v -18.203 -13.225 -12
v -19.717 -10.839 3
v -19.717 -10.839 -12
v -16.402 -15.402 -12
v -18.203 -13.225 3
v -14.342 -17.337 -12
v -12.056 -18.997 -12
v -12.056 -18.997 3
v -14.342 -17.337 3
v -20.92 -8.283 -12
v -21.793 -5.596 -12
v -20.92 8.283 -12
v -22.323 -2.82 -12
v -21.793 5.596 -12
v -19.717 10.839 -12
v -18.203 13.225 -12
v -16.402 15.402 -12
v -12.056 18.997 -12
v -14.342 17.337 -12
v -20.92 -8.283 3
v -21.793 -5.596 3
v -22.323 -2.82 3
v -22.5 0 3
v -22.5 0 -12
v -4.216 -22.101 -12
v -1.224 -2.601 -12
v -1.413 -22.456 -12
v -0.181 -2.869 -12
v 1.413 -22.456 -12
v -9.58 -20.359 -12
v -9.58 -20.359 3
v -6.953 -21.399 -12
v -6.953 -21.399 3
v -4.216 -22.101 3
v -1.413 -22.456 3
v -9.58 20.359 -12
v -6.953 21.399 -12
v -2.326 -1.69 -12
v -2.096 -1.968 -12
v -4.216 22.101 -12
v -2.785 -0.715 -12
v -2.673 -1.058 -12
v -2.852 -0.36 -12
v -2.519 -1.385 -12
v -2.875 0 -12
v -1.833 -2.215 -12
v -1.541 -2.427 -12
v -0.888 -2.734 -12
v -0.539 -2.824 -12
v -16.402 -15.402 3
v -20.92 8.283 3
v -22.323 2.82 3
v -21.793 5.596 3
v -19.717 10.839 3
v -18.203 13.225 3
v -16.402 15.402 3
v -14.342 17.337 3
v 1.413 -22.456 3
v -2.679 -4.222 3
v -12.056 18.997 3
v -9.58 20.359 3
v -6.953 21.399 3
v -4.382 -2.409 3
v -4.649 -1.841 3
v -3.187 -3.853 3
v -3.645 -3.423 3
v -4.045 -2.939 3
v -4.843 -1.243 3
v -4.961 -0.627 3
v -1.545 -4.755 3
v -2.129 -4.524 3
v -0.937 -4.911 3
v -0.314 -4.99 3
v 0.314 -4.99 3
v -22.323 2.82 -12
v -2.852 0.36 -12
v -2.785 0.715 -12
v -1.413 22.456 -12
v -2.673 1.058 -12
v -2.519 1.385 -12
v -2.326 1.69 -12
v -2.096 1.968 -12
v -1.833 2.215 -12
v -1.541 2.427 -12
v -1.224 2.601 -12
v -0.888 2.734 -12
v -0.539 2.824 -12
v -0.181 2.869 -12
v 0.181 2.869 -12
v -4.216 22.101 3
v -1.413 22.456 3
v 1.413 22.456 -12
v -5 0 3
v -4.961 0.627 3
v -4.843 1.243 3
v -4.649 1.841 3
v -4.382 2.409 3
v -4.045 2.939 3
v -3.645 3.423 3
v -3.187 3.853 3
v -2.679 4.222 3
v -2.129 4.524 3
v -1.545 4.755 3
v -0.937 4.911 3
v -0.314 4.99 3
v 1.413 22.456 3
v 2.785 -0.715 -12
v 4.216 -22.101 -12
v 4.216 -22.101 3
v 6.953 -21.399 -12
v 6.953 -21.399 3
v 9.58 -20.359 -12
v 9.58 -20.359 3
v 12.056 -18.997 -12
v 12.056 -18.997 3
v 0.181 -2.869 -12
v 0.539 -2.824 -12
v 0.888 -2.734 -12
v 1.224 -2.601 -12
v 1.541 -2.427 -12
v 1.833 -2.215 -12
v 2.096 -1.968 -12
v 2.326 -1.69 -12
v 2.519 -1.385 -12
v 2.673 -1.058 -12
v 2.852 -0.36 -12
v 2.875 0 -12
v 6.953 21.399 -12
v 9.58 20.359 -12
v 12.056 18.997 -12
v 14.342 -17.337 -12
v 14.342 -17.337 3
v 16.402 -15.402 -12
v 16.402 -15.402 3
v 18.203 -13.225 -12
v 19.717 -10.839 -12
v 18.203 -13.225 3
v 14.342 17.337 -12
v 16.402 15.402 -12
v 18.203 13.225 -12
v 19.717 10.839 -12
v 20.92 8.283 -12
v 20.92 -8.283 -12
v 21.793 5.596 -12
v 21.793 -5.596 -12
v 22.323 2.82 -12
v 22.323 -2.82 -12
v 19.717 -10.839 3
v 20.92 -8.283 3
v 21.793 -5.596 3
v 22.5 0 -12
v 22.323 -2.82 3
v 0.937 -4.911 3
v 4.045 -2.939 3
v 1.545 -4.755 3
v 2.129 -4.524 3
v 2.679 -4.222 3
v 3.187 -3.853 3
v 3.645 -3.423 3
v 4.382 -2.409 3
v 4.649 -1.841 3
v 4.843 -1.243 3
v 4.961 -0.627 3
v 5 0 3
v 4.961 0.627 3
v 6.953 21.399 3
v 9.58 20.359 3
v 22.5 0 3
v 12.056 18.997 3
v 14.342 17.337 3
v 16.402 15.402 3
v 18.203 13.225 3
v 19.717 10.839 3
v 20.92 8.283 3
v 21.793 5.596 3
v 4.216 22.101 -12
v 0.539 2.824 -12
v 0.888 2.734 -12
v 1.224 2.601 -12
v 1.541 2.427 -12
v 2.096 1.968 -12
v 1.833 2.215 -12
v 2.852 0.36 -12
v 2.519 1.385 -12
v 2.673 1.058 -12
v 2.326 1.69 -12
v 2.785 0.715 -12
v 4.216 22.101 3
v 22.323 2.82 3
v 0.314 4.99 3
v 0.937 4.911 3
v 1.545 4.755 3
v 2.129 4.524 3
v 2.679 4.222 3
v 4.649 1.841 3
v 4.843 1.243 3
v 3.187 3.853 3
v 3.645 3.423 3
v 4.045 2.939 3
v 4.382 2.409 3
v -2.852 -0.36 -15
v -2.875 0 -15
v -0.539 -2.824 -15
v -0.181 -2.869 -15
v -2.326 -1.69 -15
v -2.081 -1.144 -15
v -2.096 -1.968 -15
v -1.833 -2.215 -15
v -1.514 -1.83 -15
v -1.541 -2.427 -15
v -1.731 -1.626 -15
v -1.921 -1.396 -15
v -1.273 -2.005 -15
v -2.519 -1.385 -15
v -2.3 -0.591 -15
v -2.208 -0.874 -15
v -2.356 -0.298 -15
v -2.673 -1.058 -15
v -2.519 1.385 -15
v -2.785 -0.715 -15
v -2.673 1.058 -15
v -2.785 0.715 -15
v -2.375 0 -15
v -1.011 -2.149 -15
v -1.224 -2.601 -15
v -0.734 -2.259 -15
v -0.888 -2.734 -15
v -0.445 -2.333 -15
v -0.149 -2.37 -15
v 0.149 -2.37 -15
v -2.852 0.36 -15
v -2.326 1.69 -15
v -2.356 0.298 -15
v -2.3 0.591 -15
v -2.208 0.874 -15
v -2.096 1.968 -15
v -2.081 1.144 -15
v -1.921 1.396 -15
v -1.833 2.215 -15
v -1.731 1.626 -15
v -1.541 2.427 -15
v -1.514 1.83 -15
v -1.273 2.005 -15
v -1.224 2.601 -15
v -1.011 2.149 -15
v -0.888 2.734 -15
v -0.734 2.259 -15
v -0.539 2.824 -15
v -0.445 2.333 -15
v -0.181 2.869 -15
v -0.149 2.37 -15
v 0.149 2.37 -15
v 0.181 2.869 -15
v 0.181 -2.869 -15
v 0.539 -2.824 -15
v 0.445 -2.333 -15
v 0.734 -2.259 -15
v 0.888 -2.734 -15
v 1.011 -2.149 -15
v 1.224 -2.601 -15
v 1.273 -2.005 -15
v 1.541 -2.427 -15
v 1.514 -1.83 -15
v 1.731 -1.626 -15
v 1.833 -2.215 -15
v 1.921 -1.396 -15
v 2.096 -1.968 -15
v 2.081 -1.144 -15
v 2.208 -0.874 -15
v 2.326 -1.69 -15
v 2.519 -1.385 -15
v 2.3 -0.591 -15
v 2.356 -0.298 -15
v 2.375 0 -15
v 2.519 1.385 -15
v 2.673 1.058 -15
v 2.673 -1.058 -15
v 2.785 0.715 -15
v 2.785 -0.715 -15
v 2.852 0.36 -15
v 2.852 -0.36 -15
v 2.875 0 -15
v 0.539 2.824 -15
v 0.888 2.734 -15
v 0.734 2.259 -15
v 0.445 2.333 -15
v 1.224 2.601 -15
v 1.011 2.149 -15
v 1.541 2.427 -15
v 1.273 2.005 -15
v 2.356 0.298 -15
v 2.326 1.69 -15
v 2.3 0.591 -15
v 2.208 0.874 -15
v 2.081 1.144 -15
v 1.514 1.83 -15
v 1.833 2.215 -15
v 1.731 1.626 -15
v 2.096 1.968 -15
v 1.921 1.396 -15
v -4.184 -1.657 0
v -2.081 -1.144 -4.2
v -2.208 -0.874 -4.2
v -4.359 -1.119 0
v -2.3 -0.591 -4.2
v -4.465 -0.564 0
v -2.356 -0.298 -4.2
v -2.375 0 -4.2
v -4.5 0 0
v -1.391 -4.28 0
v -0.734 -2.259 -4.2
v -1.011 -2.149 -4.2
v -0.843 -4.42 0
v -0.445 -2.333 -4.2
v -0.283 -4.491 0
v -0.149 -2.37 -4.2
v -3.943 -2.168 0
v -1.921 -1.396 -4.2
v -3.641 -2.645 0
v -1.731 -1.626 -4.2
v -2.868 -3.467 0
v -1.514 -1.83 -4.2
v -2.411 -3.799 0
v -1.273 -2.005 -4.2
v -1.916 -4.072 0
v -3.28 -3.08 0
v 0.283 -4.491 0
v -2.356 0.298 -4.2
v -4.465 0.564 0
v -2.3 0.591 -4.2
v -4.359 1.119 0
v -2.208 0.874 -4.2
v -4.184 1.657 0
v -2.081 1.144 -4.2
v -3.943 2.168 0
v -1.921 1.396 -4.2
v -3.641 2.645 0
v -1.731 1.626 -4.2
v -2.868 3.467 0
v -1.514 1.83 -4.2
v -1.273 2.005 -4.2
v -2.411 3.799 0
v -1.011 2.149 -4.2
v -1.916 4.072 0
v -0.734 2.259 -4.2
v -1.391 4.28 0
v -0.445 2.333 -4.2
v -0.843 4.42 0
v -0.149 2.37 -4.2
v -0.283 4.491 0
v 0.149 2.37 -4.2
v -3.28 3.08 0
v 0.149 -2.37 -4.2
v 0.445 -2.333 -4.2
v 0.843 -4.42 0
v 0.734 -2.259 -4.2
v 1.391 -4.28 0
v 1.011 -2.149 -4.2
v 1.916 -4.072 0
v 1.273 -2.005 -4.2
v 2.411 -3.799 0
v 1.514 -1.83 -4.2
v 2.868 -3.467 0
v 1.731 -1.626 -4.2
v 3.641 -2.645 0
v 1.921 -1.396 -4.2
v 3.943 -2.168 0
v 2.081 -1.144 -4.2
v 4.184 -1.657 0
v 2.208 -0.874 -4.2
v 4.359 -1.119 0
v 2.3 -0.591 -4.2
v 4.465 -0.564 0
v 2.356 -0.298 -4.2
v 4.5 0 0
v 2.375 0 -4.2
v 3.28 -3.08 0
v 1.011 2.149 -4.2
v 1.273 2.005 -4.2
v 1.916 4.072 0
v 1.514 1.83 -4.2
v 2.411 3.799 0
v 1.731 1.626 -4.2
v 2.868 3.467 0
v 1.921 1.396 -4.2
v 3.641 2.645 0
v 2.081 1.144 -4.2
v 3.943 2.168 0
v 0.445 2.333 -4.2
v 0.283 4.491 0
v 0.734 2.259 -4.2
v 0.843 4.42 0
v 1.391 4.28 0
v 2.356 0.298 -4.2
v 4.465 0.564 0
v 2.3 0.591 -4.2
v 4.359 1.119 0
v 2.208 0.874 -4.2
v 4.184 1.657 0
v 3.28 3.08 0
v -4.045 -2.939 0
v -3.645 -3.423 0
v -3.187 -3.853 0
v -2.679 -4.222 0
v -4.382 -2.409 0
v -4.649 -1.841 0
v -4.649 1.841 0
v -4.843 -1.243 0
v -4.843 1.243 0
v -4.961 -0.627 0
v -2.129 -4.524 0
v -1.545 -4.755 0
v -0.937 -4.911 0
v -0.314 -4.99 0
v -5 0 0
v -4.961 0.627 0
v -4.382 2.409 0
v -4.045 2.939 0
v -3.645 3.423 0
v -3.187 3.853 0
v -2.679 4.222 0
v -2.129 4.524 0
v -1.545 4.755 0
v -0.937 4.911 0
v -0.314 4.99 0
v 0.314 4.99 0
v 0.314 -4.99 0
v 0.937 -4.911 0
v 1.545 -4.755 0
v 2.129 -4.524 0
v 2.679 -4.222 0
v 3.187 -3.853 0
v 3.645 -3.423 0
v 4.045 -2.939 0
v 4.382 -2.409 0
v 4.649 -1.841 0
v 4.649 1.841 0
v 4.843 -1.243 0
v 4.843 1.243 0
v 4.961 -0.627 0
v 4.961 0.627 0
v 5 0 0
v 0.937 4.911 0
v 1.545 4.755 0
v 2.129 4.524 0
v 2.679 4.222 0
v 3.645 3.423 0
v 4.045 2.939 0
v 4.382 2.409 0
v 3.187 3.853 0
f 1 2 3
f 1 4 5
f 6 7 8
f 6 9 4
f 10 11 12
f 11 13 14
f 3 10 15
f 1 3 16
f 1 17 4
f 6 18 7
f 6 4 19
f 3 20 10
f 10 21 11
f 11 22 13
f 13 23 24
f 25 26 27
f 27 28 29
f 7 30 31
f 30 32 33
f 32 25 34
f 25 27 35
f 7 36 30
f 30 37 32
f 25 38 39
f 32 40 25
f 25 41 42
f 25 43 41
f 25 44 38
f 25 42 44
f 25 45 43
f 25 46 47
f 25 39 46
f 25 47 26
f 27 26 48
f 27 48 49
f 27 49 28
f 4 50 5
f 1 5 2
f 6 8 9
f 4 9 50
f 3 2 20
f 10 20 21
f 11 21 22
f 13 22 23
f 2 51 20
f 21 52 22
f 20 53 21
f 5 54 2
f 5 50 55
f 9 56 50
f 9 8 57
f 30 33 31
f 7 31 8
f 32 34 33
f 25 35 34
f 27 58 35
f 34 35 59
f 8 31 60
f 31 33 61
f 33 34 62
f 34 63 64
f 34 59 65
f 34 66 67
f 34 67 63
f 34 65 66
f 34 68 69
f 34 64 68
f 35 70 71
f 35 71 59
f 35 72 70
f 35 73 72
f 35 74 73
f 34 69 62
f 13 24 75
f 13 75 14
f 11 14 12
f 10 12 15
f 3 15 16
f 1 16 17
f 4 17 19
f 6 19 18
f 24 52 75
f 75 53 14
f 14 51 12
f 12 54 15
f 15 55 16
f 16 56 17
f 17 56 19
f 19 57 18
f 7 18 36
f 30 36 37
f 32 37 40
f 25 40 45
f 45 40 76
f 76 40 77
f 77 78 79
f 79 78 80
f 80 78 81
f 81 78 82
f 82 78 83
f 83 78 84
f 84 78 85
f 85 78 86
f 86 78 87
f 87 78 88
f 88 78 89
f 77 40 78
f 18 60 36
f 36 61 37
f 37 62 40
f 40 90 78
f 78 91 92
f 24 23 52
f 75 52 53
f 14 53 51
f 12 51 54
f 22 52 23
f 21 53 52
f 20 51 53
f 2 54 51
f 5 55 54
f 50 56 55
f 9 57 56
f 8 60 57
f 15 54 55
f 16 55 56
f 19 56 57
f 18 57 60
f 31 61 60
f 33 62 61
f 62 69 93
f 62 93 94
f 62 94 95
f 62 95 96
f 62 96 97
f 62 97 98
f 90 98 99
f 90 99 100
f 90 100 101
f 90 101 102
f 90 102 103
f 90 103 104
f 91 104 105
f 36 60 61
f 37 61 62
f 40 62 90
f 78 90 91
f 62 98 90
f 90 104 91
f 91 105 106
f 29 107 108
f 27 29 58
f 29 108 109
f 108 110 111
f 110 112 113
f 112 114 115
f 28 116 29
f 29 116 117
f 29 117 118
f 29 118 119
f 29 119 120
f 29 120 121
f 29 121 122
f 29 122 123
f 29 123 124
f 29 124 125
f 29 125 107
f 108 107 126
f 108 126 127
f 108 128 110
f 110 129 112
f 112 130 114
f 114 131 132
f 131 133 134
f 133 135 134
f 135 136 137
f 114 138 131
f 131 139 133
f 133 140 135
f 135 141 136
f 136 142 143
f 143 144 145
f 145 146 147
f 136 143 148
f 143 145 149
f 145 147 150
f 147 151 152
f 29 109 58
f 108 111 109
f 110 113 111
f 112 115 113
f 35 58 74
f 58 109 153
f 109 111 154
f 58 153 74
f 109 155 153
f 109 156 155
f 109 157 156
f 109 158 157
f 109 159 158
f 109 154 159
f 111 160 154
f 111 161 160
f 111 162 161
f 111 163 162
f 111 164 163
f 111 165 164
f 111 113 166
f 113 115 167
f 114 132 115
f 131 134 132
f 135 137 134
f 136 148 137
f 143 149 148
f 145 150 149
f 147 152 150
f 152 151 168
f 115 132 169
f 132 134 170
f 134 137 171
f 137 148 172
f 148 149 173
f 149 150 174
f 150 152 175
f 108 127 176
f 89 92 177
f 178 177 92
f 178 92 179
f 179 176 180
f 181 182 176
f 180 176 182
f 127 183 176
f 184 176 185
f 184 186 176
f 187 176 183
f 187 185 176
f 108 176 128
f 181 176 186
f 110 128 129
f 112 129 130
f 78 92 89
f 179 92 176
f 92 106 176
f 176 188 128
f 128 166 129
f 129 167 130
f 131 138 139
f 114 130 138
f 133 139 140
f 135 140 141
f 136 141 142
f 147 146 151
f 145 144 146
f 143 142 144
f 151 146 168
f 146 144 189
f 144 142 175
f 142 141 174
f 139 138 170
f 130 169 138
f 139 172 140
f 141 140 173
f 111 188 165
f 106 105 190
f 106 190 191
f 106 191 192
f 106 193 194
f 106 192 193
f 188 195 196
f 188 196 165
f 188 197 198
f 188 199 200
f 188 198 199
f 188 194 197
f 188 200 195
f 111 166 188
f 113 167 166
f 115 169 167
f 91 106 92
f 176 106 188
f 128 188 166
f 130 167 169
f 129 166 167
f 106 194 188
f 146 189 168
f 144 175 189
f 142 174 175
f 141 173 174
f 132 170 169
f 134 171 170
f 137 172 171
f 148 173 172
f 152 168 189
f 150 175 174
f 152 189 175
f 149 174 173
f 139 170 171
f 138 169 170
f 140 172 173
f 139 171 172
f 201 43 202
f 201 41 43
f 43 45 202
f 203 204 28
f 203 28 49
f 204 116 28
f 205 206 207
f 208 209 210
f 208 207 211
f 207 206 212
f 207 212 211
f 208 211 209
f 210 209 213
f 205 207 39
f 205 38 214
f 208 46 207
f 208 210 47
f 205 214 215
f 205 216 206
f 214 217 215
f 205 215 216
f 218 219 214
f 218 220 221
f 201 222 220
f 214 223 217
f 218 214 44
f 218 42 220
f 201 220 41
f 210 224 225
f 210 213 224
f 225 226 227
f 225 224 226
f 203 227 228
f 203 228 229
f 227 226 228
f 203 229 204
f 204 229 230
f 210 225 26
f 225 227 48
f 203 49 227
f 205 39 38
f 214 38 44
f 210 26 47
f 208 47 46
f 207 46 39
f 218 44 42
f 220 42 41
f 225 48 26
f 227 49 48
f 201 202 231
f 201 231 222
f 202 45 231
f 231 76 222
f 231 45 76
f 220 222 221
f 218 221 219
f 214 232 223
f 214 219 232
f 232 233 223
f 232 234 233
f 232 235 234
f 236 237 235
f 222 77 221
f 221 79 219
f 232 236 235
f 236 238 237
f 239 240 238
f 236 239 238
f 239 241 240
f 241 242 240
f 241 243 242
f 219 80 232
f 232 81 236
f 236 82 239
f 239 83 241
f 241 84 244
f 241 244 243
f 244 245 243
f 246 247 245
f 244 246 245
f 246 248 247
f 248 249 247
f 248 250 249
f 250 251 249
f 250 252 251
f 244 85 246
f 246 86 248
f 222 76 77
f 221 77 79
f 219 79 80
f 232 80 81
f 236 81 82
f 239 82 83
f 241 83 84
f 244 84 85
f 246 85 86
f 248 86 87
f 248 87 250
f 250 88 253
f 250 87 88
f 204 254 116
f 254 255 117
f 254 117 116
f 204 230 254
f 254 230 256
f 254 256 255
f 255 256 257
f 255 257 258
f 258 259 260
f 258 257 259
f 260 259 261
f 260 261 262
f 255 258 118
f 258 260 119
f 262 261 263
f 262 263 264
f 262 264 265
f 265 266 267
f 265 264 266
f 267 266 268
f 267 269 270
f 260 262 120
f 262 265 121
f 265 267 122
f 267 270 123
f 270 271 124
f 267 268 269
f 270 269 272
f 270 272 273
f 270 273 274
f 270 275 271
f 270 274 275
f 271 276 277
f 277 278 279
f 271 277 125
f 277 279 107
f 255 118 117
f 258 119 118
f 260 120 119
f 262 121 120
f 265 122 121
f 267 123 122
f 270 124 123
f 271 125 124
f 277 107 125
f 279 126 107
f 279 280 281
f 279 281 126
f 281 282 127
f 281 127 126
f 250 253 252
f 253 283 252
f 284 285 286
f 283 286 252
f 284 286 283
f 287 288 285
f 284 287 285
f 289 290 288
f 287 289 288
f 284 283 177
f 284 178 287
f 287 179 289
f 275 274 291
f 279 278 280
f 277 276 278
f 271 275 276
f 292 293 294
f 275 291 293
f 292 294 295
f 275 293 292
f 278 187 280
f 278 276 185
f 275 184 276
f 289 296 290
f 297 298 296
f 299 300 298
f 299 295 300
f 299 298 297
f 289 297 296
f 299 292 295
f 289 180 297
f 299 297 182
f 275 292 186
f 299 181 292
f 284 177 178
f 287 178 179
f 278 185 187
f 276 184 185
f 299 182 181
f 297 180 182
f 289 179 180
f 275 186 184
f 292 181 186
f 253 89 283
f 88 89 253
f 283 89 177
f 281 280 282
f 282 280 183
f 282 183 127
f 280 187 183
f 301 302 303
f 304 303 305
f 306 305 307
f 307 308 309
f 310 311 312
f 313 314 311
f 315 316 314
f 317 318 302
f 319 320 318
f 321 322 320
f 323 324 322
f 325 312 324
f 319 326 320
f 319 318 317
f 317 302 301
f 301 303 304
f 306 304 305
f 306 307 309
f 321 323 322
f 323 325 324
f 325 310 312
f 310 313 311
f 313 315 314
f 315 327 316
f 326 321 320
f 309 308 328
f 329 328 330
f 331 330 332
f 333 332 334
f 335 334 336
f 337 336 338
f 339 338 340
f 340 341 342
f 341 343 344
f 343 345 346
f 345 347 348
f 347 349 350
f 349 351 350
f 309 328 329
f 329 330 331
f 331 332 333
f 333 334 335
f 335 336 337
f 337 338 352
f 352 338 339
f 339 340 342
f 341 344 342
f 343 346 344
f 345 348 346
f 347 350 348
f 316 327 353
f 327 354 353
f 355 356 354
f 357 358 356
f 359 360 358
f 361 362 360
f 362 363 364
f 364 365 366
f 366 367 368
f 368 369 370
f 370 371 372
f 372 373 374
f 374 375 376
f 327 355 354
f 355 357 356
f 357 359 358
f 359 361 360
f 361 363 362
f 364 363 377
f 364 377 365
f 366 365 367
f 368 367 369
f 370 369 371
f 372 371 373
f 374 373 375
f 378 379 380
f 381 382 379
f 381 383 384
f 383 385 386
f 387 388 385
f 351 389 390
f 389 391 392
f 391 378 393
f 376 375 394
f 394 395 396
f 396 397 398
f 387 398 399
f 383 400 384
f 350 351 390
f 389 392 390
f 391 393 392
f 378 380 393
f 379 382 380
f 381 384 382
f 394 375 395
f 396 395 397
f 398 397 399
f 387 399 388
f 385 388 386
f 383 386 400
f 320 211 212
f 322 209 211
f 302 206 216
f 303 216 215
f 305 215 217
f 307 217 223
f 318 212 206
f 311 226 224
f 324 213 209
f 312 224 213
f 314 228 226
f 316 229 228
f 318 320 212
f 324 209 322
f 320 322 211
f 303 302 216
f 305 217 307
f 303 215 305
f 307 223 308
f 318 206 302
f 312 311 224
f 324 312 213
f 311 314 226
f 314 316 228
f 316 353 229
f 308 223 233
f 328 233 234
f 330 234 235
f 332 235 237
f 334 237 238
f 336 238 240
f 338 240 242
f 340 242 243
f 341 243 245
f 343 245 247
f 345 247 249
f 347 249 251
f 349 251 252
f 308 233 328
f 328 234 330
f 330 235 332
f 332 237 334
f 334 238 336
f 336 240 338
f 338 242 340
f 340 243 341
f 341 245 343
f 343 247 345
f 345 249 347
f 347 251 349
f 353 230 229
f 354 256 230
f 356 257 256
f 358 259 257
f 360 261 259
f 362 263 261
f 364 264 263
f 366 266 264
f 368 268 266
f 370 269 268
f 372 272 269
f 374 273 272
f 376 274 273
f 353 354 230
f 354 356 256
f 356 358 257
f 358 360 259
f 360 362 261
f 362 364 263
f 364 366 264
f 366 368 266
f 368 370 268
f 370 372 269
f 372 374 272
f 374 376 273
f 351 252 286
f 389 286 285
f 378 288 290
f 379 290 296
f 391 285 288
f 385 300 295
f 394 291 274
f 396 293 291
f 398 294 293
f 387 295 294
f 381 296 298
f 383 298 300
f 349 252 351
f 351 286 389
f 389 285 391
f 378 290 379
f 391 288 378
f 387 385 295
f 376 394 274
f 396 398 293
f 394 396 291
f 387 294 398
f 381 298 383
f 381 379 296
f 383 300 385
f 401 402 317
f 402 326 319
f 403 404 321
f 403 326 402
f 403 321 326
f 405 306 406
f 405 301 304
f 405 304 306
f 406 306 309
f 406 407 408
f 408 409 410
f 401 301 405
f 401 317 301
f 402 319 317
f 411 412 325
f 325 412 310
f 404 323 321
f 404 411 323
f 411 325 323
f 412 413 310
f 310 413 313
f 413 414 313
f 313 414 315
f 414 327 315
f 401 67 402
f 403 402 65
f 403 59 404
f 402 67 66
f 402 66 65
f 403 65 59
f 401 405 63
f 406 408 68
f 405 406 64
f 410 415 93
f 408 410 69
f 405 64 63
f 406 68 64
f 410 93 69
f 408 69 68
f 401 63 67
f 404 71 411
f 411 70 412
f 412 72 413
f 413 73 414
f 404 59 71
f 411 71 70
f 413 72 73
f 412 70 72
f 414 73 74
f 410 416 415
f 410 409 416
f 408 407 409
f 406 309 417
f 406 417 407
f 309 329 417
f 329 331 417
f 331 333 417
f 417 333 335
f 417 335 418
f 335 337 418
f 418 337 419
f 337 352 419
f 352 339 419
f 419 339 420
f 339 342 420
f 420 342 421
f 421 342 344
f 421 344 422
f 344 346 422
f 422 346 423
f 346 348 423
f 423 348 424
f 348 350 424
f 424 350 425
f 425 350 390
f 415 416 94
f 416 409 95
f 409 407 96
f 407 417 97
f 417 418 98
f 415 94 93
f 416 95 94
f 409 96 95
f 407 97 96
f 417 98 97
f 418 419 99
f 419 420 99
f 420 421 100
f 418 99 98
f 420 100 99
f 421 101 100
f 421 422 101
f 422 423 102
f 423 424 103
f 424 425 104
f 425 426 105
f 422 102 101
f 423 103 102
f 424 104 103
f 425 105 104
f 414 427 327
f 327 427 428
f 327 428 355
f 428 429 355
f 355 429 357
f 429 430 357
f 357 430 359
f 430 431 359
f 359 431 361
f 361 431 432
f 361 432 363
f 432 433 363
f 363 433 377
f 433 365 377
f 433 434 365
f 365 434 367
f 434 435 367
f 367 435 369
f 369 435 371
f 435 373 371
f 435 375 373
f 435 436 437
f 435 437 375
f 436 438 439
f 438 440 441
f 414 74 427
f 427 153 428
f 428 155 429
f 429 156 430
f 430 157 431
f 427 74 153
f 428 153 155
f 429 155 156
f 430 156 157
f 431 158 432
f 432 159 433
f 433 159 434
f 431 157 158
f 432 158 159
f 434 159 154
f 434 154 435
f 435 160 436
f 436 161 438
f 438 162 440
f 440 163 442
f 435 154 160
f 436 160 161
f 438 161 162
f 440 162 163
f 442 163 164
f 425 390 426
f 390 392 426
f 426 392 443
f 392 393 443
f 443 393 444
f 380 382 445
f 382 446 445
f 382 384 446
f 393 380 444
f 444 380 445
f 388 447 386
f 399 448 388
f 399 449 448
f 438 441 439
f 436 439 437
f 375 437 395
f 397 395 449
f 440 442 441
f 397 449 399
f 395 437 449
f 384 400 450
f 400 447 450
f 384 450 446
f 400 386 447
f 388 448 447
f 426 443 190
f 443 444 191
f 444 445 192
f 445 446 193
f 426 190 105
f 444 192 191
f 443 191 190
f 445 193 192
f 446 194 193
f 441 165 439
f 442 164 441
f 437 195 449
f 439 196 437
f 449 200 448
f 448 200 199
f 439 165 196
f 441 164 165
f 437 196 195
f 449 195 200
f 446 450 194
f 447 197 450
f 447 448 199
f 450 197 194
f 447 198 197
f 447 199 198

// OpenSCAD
$fn = 50;

difference() {
	union() {
		translate(v = [0, 0, -12.0]) {
			cylinder(h = 15, r = 22.5);
		}
		#translate(v = [0, 0, -15.0]) {
			cylinder(h = 15, r = 2.875);
		}
	}
	union() {
		translate(v = [0, 0, 0]) {
			rotate(a = [0, 0, 0]) {
				difference() {
					union() {
						translate(v = [0, 0, -15.0]) {
							cylinder(h = 15, r = 2.25);
						}
						translate(v = [0, 0, -4.2]) {
							cylinder(h = 4.2, r1 = 2.375, r2 = 4.5);
						}
						translate(v = [0, 0, -15.0]) {
							cylinder(h = 15, r = 2.375);
						}
						translate(v = [0, 0, -15.0]) {
							cylinder(h = 15, r = 2.25);
						}
					}
					union();
				}
			}
		}
		#cylinder(h = 3, r = 5.0);
	}
}
